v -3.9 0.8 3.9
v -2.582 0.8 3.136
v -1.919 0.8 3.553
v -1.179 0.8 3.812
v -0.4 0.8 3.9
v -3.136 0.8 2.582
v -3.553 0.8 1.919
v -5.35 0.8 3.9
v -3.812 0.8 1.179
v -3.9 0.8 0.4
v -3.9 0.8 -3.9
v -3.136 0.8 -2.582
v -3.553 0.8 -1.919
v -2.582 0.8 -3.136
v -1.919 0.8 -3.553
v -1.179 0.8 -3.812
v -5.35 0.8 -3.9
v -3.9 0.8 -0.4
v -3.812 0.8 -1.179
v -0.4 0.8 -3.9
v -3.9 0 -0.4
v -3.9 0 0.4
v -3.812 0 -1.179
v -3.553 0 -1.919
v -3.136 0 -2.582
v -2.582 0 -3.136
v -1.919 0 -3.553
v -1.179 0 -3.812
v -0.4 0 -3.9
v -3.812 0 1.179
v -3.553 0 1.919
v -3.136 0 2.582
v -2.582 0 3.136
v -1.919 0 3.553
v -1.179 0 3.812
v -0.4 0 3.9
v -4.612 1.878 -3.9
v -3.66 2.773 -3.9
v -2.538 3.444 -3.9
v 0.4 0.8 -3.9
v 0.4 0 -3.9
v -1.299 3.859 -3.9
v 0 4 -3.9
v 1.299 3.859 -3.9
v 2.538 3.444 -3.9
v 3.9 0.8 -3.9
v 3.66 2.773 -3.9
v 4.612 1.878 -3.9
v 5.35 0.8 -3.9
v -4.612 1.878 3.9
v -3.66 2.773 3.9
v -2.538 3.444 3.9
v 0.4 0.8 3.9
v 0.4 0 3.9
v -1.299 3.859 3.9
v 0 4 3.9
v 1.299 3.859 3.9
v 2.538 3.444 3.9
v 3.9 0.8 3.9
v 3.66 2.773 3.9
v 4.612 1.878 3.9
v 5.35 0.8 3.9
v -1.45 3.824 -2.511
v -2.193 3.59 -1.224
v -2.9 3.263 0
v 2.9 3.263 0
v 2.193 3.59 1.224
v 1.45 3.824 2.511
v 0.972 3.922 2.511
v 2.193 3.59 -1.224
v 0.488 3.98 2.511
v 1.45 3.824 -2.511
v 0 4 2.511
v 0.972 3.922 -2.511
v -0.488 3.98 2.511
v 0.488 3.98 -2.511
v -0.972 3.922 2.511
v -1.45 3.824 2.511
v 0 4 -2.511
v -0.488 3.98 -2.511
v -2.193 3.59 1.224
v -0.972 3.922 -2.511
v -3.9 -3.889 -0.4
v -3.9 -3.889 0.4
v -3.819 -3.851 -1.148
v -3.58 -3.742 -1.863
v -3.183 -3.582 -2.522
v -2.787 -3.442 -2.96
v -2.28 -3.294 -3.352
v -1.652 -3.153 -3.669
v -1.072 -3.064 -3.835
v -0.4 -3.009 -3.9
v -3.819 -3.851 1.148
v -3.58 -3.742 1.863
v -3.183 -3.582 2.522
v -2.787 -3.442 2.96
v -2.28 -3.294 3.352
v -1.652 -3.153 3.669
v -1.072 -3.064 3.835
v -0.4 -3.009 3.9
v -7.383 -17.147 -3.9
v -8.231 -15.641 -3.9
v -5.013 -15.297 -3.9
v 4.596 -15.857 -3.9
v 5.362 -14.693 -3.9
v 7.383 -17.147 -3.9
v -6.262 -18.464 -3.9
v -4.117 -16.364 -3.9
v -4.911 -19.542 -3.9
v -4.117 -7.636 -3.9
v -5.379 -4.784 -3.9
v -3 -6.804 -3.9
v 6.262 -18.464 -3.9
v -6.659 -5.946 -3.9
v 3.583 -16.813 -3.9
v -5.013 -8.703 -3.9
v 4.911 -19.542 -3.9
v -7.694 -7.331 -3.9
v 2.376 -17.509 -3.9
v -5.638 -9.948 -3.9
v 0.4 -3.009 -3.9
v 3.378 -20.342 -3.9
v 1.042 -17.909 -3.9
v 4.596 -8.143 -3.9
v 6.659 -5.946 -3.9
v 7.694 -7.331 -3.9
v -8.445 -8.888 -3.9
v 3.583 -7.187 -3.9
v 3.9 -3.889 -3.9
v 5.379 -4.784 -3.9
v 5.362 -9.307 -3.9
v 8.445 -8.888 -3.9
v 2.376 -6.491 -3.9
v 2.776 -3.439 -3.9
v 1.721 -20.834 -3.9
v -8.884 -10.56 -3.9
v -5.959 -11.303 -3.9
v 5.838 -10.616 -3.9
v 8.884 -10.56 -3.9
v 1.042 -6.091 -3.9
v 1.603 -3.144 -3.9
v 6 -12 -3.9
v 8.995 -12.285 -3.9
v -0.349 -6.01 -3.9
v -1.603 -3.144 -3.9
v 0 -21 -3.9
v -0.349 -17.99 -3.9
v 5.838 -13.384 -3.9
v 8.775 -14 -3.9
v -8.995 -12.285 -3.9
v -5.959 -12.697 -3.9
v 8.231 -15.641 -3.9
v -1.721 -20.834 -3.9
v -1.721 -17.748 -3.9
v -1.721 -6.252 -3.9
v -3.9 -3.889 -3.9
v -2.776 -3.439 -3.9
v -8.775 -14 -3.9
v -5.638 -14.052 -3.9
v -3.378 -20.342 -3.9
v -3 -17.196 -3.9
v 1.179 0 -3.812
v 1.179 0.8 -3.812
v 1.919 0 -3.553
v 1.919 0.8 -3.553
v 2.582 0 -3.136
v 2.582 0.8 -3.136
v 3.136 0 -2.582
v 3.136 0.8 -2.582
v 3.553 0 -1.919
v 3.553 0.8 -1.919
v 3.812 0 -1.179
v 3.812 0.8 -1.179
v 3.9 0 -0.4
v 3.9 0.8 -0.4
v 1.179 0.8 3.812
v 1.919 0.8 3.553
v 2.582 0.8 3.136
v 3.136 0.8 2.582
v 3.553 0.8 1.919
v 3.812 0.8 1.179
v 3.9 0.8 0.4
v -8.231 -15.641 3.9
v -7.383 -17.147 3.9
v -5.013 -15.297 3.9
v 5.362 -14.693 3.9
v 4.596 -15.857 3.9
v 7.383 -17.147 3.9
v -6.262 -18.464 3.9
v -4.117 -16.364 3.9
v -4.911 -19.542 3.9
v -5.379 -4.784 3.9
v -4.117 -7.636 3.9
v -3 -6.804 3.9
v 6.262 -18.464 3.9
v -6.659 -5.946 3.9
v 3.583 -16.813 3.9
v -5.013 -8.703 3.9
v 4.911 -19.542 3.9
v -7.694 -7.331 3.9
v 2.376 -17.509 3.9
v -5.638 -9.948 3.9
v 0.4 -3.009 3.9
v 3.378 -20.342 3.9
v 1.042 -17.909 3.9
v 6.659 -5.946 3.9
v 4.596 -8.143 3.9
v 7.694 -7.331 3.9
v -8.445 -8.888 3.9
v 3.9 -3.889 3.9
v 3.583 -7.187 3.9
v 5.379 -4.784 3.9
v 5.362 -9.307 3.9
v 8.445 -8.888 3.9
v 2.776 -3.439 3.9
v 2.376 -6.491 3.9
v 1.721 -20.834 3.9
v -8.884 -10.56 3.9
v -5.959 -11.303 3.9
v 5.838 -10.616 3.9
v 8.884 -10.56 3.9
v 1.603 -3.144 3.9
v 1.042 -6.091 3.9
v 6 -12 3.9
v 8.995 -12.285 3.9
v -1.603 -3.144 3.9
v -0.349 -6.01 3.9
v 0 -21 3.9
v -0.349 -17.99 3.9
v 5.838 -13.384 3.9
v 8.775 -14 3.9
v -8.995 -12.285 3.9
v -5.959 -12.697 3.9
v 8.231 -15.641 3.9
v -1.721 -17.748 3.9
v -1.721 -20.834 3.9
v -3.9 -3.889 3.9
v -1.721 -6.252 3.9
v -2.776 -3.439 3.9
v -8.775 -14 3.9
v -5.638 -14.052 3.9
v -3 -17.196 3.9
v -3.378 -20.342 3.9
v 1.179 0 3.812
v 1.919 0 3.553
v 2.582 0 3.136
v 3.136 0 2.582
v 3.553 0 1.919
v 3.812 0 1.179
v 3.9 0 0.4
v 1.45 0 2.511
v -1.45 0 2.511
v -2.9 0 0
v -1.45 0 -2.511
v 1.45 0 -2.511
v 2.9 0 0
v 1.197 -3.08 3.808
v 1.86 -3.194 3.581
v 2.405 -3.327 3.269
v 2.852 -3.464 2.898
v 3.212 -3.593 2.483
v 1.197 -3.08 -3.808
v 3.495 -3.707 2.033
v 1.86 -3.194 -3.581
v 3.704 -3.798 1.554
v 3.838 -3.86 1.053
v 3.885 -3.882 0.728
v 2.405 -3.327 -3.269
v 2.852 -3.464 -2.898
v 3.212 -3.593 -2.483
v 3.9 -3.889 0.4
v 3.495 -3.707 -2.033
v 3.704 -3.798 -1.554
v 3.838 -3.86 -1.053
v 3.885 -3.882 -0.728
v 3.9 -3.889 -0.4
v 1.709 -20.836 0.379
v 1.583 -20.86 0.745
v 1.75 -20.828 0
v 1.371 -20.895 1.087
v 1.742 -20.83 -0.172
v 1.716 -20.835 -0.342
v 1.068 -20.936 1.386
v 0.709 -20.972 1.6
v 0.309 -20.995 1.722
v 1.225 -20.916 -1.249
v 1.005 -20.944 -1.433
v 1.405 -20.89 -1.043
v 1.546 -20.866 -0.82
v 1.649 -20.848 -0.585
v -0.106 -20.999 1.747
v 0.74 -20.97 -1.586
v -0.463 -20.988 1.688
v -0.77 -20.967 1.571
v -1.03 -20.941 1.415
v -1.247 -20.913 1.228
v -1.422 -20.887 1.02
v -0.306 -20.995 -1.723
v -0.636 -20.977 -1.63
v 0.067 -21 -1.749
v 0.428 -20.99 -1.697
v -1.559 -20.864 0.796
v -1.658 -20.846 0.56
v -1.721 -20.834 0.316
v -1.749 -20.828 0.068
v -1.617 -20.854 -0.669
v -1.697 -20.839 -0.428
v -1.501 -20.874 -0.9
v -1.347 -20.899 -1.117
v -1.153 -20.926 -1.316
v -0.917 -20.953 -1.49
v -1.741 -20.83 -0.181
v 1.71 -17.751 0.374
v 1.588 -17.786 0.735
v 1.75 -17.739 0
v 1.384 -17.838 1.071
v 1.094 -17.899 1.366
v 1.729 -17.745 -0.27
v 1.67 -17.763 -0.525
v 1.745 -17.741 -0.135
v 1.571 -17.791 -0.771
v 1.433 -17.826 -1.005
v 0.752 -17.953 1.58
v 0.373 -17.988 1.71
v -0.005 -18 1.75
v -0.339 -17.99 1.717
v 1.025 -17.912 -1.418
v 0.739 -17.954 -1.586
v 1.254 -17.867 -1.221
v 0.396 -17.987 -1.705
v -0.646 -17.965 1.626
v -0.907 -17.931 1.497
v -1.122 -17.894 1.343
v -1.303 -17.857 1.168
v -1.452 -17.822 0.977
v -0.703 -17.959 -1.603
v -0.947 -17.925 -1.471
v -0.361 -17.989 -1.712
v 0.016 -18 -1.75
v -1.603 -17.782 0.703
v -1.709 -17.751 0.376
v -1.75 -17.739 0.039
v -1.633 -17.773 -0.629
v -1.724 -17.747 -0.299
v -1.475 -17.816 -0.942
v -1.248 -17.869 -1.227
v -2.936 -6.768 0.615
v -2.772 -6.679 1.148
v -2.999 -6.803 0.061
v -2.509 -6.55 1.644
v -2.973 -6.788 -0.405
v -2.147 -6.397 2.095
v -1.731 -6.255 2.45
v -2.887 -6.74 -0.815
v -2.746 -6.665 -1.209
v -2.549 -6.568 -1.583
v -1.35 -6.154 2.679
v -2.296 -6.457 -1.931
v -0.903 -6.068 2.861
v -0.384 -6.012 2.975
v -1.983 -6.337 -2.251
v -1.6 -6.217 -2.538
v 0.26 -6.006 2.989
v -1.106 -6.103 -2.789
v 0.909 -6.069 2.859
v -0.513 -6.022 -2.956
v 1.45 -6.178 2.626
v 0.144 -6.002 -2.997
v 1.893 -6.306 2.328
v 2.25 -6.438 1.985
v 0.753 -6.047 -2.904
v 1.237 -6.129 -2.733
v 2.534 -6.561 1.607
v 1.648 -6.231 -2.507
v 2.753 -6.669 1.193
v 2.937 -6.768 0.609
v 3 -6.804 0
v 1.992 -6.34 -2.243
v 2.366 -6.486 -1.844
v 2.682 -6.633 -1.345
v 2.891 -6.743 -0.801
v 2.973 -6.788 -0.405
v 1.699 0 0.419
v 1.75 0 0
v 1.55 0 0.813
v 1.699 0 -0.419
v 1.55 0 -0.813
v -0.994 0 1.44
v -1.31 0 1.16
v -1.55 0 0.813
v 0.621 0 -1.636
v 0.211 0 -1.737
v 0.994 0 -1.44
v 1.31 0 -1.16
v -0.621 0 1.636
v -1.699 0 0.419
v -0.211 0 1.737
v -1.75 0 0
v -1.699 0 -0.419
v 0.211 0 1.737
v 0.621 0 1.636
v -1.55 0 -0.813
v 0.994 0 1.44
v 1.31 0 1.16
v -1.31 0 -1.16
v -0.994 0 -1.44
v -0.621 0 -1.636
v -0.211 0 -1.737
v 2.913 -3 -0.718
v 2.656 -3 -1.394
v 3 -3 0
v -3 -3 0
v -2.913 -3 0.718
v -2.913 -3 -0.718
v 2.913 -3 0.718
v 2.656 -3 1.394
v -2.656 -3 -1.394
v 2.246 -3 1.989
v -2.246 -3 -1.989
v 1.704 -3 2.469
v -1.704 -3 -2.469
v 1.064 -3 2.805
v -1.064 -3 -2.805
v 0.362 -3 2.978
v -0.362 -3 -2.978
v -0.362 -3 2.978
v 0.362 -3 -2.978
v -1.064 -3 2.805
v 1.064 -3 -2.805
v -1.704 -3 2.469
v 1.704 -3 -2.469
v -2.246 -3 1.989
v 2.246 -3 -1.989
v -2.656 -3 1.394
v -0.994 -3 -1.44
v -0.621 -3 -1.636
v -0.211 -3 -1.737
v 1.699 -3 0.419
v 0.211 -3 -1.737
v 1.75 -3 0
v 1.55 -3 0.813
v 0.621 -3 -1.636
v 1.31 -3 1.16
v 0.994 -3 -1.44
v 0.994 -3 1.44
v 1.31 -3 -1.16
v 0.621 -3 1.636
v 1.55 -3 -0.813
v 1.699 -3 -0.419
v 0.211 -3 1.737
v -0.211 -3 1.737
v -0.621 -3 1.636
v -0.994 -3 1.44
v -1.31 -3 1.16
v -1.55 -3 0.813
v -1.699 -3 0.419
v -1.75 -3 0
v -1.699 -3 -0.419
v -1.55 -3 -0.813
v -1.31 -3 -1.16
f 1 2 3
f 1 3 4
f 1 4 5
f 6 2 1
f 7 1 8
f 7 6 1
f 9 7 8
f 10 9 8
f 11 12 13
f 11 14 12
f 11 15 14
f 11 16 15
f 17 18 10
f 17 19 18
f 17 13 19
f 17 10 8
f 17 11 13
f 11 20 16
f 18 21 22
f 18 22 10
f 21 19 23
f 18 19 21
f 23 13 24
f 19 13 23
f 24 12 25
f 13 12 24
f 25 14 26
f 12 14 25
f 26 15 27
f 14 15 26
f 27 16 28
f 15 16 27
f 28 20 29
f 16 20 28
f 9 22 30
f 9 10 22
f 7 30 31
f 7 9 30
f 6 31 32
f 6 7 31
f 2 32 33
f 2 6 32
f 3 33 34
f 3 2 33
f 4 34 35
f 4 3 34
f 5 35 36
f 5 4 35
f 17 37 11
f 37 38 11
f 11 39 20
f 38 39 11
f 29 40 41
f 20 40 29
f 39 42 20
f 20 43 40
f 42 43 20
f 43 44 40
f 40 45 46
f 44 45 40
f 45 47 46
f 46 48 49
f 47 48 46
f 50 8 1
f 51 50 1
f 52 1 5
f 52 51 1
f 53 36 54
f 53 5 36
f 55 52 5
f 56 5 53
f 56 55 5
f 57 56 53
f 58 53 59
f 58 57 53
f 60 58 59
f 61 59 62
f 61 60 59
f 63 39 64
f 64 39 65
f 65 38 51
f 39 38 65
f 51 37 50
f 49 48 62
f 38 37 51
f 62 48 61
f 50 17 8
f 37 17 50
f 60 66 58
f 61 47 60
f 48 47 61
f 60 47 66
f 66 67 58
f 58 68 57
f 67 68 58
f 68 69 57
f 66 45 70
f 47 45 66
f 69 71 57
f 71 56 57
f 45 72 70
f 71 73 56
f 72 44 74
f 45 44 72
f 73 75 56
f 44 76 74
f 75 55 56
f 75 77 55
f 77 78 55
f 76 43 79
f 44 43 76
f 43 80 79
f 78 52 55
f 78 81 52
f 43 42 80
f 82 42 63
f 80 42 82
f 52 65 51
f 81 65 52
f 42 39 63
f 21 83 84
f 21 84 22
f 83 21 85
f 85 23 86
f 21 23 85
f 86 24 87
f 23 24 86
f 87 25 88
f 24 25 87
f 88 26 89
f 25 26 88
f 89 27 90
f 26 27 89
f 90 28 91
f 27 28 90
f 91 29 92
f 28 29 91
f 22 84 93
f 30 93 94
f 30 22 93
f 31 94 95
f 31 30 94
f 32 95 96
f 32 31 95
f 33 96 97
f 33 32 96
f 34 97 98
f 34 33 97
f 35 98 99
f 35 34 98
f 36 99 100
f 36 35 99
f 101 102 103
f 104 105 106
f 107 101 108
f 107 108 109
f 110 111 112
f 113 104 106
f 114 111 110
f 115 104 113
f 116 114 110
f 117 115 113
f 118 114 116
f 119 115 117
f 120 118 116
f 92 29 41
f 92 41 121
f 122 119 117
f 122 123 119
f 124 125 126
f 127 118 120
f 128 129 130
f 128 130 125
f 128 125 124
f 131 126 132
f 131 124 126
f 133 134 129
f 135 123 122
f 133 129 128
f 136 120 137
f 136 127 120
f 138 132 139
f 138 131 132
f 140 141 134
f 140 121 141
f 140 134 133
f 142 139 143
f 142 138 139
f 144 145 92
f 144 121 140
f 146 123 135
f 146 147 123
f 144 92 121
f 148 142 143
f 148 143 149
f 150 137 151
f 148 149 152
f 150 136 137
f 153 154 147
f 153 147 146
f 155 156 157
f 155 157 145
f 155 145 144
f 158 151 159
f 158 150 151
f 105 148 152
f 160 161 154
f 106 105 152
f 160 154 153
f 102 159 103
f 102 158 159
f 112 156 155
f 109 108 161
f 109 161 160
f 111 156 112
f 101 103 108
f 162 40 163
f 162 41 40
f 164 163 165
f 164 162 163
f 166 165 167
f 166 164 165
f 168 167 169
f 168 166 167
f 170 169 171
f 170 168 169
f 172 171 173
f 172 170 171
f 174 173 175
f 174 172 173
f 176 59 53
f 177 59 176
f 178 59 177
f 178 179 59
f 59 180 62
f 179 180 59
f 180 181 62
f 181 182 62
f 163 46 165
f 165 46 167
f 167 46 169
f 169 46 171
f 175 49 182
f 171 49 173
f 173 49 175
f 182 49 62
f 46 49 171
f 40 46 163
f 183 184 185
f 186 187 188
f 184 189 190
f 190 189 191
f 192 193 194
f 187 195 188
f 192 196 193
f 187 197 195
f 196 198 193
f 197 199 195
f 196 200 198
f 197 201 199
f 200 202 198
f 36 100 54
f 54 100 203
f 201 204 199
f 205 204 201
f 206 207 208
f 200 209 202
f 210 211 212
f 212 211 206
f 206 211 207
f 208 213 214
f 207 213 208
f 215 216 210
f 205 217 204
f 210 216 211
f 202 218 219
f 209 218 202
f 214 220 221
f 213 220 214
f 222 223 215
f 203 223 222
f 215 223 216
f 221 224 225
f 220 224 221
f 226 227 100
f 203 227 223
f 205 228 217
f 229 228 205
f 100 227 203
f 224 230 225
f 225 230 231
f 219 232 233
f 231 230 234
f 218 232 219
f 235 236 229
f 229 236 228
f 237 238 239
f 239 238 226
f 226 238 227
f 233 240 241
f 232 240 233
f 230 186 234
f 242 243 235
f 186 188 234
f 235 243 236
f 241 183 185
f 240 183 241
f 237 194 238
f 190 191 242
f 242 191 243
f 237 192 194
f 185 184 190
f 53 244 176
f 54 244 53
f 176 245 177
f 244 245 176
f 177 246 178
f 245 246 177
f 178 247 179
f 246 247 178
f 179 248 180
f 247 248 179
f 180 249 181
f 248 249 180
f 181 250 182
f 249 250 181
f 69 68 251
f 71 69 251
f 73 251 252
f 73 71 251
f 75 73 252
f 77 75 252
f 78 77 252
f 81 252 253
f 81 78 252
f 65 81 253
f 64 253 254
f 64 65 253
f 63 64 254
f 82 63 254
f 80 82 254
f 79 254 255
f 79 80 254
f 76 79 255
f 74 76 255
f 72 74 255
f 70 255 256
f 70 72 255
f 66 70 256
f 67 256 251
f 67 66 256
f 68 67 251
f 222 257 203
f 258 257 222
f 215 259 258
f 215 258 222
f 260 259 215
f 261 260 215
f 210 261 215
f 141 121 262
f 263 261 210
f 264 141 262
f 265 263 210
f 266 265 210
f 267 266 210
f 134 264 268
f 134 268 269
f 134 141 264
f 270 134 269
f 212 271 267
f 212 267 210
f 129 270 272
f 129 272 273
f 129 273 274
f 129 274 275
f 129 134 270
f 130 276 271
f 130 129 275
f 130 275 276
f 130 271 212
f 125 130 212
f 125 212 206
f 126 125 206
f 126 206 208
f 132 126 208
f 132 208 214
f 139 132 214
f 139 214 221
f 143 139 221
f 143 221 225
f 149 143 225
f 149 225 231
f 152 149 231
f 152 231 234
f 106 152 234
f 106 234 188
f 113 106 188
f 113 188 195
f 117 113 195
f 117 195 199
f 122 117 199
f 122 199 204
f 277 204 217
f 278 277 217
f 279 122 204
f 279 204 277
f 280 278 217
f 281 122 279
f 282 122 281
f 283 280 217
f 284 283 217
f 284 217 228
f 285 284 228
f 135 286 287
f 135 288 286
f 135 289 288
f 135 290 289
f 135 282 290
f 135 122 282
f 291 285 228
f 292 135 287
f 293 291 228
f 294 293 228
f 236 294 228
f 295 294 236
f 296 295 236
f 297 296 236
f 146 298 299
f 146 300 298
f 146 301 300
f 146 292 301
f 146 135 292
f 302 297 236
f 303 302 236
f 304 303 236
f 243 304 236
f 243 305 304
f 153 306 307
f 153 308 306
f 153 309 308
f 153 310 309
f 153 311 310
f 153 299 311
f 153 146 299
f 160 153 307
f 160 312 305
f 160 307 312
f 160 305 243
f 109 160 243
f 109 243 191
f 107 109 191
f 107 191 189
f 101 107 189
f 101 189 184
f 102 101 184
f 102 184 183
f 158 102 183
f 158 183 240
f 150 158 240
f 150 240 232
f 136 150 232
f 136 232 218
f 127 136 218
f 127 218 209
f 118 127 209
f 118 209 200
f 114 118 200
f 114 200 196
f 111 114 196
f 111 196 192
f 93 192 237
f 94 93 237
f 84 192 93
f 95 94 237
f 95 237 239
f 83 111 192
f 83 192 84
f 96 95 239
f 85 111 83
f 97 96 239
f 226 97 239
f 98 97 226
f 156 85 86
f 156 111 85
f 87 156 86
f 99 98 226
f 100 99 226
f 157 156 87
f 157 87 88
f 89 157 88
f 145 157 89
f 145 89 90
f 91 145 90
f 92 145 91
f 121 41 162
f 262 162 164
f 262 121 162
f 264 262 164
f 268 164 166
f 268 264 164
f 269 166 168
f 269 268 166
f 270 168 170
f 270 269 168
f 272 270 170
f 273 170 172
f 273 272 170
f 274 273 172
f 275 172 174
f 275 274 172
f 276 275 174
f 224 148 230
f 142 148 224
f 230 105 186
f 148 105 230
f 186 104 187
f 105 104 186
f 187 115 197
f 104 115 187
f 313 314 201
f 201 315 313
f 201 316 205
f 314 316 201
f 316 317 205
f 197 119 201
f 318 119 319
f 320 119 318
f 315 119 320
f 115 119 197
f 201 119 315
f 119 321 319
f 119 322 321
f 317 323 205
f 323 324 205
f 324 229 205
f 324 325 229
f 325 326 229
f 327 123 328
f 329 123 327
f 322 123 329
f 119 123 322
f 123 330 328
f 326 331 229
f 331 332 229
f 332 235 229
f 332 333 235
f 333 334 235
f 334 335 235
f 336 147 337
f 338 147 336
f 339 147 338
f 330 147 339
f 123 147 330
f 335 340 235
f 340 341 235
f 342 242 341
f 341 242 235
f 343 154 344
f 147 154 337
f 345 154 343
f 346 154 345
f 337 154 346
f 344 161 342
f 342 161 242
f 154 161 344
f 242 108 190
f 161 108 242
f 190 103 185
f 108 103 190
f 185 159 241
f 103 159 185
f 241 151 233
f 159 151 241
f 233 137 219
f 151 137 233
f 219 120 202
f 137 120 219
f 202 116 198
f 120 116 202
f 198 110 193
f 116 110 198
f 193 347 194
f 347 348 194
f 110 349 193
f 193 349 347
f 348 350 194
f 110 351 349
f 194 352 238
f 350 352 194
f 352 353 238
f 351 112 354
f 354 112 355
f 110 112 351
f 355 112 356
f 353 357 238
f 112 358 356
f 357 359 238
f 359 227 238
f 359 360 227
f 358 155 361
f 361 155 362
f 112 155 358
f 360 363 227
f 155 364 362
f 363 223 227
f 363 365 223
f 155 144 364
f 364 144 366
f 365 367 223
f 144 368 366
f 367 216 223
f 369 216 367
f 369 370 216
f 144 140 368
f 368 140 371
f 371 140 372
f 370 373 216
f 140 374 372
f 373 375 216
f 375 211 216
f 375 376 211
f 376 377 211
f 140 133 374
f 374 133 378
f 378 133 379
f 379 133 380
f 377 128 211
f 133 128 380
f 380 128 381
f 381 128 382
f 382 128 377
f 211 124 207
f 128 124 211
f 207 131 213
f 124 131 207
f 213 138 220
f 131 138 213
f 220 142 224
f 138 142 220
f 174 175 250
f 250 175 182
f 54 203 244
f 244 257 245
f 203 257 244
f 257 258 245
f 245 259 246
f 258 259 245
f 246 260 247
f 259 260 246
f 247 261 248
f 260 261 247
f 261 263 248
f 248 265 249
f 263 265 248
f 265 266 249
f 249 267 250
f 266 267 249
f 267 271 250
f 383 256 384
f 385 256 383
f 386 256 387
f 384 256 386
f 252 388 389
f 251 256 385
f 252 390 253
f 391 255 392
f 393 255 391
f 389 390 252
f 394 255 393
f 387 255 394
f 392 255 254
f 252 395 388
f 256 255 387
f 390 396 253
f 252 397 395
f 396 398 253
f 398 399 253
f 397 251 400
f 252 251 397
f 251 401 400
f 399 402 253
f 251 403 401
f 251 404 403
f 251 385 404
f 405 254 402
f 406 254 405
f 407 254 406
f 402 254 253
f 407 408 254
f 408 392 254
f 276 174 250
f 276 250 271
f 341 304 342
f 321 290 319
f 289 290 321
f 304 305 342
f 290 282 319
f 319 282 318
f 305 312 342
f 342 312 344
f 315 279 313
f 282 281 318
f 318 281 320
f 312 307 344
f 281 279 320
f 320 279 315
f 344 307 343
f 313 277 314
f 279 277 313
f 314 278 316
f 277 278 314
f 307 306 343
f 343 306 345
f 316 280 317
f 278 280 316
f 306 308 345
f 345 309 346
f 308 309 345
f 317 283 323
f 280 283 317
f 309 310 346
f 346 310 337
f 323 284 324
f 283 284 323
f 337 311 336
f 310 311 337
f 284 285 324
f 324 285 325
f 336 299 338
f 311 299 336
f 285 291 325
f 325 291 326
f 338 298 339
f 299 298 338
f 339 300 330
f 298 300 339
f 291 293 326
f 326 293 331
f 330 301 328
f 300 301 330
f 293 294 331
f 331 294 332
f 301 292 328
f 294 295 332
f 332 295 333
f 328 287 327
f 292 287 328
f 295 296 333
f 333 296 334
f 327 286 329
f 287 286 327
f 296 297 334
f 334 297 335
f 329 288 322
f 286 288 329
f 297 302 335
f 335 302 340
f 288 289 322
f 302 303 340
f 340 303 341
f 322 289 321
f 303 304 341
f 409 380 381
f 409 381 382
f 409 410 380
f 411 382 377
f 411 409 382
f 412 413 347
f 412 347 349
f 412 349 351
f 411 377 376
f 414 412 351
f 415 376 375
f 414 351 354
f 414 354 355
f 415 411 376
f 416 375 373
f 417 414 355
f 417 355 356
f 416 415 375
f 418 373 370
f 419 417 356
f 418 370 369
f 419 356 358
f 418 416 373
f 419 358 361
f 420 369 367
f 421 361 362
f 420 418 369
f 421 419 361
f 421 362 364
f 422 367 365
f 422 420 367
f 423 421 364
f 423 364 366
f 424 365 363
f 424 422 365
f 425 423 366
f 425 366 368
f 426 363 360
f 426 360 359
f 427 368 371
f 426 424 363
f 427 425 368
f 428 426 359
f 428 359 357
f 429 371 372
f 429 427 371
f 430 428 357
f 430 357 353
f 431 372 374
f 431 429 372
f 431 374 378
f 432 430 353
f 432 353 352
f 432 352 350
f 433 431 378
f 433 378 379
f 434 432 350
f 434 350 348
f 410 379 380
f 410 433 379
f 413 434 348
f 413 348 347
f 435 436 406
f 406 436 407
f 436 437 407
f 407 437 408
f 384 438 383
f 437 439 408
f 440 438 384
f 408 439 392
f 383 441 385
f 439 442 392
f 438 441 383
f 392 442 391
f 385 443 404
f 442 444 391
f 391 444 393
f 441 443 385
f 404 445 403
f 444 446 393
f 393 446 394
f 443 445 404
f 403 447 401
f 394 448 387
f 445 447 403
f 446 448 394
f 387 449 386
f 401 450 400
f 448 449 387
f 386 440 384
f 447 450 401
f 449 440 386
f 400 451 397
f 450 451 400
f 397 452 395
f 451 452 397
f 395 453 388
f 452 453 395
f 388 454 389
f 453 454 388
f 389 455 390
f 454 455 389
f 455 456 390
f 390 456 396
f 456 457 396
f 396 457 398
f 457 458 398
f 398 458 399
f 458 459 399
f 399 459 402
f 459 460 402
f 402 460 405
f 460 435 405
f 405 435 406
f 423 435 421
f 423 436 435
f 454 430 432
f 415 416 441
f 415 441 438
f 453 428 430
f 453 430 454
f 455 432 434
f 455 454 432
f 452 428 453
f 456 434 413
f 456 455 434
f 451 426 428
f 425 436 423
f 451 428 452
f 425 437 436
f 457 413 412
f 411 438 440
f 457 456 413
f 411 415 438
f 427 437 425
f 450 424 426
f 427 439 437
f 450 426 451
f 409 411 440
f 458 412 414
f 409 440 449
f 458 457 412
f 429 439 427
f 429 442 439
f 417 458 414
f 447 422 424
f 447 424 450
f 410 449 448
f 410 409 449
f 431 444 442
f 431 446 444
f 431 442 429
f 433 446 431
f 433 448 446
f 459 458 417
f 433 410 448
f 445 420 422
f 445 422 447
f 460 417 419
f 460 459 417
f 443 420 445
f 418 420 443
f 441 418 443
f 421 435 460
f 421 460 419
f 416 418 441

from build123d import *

# Parameters (mm, degrees)
PAD_DEPTH         = 3.9
SKETCH001_R       = 6
PAD001_DEPTH      = 7.8
FILLET_R          = 3.5
SKETCH002_R       = 1.75
POCKET_DEPTH      = 4.001
POCKET_DEPTH_BACK = 21.001
POCKET001_DEPTH   = 4
SKETCH004_R       = 3
POCKET002_DEPTH   = 6


with BuildPart() as part:
    # Sketch → Pad (new body, symmetric)
    with BuildSketch(Plane.XY):
        with BuildLine():
            Line((-3.9, 0), (3.9, 0))
            Line((3.9, 0), (3.9, 0.8))
            Line((3.9, 0.8), (5.35, 0.8))
            ThreePointArc((5.35, 0.8), (0, 4), (-5.35, 0.8))
            Line((-5.35, 0.8), (-3.9, 0.8))
            Line((-3.9, 0.8), (-3.9, 0))
        make_face()
    extrude(amount=PAD_DEPTH, both=True)

    # Sketch001 (on Face7 of Pad) → Pad001 (join)
    with BuildSketch(Plane(origin=(0, 0, -3.9), x_dir=(1, 0, 0), z_dir=(0, 0, -1))):
        with BuildLine():
            ThreePointArc((3.9, 3.888896), (0, 21), (-3.9, 3.888896))
            Line((-3.9, 3.888896), (-3.9, 0))
            Line((-3.9, 0), (3.9, 0))
            Line((3.9, 0), (3.9, 3.888896))
        make_face()
        with Locations((0, 12)):
            Circle(SKETCH001_R, mode=Mode.SUBTRACT)
    extrude(amount=-PAD001_DEPTH)

    # Fillet
    fillet_edges = [part.edges().sort_by_distance(p)[0] for p in [
        (-3.9, -1.944448, -3.9),
        (-3.9, -1.944448, 3.9),
        (3.9, -1.944448, 3.9),
        (3.9, -1.944448, -3.9),
    ]]
    fillet(fillet_edges, radius=FILLET_R)

    # Sketch002 → Pocket (cut, two sides)
    with BuildSketch(Plane.XZ) as pocket_sk:
        Circle(SKETCH002_R)
    extrude(amount=-POCKET_DEPTH, mode=Mode.SUBTRACT)
    extrude(pocket_sk.sketch, amount=POCKET_DEPTH_BACK, mode=Mode.SUBTRACT)

    # Sketch003 (on DatumPlane) → Pocket001 (cut)
    with BuildSketch(Plane.XZ.offset(-4)):
        Polygon((-1.45, -2.511474), (1.45, -2.511474), (2.9, 0), (1.45, 2.511474), (-1.45, 2.511474), (-2.9, 0), align=None)
    extrude(amount=POCKET001_DEPTH, mode=Mode.SUBTRACT)

    # Sketch004 (on DatumPlane) → Pocket002 (cut)
    with BuildSketch(Plane.XZ.offset(3)):
        Circle(SKETCH004_R)
    extrude(amount=POCKET002_DEPTH, mode=Mode.SUBTRACT)


solid = part.part
